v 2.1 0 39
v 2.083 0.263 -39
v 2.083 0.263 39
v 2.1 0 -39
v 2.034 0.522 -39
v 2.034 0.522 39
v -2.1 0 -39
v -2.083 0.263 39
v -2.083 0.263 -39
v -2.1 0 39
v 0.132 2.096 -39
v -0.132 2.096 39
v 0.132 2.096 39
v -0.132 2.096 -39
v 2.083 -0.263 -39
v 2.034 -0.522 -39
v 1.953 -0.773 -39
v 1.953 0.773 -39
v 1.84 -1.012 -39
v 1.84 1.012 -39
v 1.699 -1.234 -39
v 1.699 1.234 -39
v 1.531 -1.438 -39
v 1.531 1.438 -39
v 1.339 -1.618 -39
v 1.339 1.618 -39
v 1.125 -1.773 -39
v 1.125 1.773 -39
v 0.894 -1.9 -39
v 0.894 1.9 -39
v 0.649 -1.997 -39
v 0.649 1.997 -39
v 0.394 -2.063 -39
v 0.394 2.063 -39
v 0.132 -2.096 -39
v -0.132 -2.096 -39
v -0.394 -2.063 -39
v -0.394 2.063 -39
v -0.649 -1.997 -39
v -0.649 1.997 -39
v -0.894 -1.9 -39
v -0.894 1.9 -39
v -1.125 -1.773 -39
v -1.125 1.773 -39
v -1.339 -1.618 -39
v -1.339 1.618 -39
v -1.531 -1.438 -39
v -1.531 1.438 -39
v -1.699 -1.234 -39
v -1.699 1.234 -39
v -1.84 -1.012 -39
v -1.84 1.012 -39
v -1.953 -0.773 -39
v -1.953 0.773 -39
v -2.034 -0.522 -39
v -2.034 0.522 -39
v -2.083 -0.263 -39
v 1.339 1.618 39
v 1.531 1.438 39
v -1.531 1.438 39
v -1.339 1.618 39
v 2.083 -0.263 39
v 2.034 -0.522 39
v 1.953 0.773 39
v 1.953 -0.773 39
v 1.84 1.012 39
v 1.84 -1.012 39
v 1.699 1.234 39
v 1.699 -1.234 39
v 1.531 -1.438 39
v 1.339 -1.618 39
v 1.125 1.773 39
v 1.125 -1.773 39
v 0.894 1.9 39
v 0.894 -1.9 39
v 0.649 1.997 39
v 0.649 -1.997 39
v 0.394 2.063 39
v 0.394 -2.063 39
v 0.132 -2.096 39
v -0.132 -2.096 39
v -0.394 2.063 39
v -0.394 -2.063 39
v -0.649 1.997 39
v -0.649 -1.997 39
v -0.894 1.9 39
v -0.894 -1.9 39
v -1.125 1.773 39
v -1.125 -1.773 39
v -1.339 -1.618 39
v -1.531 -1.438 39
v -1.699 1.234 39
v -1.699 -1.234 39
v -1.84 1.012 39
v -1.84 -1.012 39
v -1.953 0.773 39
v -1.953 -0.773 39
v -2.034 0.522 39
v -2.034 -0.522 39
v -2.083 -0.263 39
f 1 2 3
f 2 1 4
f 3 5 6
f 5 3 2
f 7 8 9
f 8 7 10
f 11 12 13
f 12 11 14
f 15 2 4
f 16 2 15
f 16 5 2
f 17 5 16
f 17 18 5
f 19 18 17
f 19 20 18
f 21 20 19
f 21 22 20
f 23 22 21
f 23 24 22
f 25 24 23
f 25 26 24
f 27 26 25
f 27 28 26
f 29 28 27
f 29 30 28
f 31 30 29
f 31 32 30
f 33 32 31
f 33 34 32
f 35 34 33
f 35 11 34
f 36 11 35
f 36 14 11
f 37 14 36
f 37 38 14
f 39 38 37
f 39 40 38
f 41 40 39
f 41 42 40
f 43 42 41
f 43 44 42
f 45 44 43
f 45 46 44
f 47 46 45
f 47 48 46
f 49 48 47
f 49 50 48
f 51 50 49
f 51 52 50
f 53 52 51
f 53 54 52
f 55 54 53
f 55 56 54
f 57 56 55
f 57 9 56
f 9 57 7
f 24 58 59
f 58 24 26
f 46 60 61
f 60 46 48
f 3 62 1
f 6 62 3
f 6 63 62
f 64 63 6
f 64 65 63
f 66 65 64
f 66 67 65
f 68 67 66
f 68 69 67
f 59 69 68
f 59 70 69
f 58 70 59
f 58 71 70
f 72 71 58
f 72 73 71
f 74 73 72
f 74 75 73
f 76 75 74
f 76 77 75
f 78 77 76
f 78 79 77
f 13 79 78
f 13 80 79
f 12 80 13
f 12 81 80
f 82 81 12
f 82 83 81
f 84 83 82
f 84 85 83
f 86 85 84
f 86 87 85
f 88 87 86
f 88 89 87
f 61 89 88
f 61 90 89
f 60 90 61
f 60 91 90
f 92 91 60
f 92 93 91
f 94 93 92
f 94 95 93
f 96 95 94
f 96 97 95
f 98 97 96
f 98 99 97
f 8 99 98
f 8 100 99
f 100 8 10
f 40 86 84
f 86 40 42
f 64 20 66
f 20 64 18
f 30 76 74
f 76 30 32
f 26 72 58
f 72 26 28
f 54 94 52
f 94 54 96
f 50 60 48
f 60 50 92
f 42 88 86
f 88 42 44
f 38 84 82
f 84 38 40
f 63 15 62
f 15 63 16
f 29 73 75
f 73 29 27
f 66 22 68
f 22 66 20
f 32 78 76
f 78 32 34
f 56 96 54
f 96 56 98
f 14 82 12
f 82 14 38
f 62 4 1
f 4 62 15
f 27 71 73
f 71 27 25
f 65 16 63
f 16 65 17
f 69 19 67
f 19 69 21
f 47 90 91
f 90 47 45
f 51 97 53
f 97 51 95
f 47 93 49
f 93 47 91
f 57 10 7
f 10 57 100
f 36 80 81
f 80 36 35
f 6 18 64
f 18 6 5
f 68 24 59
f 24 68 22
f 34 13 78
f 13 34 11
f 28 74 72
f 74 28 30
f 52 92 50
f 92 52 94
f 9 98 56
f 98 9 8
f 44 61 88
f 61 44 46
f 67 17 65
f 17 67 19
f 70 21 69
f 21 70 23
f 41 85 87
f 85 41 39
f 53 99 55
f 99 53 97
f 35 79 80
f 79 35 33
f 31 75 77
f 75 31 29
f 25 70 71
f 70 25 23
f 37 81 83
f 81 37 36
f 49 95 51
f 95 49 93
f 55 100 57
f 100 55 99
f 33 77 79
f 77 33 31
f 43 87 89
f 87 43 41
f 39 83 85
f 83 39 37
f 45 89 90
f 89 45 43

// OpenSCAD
$fn = 50;


difference() {
	union() {
		translate(v = [0, 0, -39.0000000000]) {
			cylinder(h = 78, r = 2.1000000000);
		}
	}
	union() {
		translate(v = [0, 0, -100.0000000000]) {
			cylinder(h = 200, r = 0);
		}
	}
}
